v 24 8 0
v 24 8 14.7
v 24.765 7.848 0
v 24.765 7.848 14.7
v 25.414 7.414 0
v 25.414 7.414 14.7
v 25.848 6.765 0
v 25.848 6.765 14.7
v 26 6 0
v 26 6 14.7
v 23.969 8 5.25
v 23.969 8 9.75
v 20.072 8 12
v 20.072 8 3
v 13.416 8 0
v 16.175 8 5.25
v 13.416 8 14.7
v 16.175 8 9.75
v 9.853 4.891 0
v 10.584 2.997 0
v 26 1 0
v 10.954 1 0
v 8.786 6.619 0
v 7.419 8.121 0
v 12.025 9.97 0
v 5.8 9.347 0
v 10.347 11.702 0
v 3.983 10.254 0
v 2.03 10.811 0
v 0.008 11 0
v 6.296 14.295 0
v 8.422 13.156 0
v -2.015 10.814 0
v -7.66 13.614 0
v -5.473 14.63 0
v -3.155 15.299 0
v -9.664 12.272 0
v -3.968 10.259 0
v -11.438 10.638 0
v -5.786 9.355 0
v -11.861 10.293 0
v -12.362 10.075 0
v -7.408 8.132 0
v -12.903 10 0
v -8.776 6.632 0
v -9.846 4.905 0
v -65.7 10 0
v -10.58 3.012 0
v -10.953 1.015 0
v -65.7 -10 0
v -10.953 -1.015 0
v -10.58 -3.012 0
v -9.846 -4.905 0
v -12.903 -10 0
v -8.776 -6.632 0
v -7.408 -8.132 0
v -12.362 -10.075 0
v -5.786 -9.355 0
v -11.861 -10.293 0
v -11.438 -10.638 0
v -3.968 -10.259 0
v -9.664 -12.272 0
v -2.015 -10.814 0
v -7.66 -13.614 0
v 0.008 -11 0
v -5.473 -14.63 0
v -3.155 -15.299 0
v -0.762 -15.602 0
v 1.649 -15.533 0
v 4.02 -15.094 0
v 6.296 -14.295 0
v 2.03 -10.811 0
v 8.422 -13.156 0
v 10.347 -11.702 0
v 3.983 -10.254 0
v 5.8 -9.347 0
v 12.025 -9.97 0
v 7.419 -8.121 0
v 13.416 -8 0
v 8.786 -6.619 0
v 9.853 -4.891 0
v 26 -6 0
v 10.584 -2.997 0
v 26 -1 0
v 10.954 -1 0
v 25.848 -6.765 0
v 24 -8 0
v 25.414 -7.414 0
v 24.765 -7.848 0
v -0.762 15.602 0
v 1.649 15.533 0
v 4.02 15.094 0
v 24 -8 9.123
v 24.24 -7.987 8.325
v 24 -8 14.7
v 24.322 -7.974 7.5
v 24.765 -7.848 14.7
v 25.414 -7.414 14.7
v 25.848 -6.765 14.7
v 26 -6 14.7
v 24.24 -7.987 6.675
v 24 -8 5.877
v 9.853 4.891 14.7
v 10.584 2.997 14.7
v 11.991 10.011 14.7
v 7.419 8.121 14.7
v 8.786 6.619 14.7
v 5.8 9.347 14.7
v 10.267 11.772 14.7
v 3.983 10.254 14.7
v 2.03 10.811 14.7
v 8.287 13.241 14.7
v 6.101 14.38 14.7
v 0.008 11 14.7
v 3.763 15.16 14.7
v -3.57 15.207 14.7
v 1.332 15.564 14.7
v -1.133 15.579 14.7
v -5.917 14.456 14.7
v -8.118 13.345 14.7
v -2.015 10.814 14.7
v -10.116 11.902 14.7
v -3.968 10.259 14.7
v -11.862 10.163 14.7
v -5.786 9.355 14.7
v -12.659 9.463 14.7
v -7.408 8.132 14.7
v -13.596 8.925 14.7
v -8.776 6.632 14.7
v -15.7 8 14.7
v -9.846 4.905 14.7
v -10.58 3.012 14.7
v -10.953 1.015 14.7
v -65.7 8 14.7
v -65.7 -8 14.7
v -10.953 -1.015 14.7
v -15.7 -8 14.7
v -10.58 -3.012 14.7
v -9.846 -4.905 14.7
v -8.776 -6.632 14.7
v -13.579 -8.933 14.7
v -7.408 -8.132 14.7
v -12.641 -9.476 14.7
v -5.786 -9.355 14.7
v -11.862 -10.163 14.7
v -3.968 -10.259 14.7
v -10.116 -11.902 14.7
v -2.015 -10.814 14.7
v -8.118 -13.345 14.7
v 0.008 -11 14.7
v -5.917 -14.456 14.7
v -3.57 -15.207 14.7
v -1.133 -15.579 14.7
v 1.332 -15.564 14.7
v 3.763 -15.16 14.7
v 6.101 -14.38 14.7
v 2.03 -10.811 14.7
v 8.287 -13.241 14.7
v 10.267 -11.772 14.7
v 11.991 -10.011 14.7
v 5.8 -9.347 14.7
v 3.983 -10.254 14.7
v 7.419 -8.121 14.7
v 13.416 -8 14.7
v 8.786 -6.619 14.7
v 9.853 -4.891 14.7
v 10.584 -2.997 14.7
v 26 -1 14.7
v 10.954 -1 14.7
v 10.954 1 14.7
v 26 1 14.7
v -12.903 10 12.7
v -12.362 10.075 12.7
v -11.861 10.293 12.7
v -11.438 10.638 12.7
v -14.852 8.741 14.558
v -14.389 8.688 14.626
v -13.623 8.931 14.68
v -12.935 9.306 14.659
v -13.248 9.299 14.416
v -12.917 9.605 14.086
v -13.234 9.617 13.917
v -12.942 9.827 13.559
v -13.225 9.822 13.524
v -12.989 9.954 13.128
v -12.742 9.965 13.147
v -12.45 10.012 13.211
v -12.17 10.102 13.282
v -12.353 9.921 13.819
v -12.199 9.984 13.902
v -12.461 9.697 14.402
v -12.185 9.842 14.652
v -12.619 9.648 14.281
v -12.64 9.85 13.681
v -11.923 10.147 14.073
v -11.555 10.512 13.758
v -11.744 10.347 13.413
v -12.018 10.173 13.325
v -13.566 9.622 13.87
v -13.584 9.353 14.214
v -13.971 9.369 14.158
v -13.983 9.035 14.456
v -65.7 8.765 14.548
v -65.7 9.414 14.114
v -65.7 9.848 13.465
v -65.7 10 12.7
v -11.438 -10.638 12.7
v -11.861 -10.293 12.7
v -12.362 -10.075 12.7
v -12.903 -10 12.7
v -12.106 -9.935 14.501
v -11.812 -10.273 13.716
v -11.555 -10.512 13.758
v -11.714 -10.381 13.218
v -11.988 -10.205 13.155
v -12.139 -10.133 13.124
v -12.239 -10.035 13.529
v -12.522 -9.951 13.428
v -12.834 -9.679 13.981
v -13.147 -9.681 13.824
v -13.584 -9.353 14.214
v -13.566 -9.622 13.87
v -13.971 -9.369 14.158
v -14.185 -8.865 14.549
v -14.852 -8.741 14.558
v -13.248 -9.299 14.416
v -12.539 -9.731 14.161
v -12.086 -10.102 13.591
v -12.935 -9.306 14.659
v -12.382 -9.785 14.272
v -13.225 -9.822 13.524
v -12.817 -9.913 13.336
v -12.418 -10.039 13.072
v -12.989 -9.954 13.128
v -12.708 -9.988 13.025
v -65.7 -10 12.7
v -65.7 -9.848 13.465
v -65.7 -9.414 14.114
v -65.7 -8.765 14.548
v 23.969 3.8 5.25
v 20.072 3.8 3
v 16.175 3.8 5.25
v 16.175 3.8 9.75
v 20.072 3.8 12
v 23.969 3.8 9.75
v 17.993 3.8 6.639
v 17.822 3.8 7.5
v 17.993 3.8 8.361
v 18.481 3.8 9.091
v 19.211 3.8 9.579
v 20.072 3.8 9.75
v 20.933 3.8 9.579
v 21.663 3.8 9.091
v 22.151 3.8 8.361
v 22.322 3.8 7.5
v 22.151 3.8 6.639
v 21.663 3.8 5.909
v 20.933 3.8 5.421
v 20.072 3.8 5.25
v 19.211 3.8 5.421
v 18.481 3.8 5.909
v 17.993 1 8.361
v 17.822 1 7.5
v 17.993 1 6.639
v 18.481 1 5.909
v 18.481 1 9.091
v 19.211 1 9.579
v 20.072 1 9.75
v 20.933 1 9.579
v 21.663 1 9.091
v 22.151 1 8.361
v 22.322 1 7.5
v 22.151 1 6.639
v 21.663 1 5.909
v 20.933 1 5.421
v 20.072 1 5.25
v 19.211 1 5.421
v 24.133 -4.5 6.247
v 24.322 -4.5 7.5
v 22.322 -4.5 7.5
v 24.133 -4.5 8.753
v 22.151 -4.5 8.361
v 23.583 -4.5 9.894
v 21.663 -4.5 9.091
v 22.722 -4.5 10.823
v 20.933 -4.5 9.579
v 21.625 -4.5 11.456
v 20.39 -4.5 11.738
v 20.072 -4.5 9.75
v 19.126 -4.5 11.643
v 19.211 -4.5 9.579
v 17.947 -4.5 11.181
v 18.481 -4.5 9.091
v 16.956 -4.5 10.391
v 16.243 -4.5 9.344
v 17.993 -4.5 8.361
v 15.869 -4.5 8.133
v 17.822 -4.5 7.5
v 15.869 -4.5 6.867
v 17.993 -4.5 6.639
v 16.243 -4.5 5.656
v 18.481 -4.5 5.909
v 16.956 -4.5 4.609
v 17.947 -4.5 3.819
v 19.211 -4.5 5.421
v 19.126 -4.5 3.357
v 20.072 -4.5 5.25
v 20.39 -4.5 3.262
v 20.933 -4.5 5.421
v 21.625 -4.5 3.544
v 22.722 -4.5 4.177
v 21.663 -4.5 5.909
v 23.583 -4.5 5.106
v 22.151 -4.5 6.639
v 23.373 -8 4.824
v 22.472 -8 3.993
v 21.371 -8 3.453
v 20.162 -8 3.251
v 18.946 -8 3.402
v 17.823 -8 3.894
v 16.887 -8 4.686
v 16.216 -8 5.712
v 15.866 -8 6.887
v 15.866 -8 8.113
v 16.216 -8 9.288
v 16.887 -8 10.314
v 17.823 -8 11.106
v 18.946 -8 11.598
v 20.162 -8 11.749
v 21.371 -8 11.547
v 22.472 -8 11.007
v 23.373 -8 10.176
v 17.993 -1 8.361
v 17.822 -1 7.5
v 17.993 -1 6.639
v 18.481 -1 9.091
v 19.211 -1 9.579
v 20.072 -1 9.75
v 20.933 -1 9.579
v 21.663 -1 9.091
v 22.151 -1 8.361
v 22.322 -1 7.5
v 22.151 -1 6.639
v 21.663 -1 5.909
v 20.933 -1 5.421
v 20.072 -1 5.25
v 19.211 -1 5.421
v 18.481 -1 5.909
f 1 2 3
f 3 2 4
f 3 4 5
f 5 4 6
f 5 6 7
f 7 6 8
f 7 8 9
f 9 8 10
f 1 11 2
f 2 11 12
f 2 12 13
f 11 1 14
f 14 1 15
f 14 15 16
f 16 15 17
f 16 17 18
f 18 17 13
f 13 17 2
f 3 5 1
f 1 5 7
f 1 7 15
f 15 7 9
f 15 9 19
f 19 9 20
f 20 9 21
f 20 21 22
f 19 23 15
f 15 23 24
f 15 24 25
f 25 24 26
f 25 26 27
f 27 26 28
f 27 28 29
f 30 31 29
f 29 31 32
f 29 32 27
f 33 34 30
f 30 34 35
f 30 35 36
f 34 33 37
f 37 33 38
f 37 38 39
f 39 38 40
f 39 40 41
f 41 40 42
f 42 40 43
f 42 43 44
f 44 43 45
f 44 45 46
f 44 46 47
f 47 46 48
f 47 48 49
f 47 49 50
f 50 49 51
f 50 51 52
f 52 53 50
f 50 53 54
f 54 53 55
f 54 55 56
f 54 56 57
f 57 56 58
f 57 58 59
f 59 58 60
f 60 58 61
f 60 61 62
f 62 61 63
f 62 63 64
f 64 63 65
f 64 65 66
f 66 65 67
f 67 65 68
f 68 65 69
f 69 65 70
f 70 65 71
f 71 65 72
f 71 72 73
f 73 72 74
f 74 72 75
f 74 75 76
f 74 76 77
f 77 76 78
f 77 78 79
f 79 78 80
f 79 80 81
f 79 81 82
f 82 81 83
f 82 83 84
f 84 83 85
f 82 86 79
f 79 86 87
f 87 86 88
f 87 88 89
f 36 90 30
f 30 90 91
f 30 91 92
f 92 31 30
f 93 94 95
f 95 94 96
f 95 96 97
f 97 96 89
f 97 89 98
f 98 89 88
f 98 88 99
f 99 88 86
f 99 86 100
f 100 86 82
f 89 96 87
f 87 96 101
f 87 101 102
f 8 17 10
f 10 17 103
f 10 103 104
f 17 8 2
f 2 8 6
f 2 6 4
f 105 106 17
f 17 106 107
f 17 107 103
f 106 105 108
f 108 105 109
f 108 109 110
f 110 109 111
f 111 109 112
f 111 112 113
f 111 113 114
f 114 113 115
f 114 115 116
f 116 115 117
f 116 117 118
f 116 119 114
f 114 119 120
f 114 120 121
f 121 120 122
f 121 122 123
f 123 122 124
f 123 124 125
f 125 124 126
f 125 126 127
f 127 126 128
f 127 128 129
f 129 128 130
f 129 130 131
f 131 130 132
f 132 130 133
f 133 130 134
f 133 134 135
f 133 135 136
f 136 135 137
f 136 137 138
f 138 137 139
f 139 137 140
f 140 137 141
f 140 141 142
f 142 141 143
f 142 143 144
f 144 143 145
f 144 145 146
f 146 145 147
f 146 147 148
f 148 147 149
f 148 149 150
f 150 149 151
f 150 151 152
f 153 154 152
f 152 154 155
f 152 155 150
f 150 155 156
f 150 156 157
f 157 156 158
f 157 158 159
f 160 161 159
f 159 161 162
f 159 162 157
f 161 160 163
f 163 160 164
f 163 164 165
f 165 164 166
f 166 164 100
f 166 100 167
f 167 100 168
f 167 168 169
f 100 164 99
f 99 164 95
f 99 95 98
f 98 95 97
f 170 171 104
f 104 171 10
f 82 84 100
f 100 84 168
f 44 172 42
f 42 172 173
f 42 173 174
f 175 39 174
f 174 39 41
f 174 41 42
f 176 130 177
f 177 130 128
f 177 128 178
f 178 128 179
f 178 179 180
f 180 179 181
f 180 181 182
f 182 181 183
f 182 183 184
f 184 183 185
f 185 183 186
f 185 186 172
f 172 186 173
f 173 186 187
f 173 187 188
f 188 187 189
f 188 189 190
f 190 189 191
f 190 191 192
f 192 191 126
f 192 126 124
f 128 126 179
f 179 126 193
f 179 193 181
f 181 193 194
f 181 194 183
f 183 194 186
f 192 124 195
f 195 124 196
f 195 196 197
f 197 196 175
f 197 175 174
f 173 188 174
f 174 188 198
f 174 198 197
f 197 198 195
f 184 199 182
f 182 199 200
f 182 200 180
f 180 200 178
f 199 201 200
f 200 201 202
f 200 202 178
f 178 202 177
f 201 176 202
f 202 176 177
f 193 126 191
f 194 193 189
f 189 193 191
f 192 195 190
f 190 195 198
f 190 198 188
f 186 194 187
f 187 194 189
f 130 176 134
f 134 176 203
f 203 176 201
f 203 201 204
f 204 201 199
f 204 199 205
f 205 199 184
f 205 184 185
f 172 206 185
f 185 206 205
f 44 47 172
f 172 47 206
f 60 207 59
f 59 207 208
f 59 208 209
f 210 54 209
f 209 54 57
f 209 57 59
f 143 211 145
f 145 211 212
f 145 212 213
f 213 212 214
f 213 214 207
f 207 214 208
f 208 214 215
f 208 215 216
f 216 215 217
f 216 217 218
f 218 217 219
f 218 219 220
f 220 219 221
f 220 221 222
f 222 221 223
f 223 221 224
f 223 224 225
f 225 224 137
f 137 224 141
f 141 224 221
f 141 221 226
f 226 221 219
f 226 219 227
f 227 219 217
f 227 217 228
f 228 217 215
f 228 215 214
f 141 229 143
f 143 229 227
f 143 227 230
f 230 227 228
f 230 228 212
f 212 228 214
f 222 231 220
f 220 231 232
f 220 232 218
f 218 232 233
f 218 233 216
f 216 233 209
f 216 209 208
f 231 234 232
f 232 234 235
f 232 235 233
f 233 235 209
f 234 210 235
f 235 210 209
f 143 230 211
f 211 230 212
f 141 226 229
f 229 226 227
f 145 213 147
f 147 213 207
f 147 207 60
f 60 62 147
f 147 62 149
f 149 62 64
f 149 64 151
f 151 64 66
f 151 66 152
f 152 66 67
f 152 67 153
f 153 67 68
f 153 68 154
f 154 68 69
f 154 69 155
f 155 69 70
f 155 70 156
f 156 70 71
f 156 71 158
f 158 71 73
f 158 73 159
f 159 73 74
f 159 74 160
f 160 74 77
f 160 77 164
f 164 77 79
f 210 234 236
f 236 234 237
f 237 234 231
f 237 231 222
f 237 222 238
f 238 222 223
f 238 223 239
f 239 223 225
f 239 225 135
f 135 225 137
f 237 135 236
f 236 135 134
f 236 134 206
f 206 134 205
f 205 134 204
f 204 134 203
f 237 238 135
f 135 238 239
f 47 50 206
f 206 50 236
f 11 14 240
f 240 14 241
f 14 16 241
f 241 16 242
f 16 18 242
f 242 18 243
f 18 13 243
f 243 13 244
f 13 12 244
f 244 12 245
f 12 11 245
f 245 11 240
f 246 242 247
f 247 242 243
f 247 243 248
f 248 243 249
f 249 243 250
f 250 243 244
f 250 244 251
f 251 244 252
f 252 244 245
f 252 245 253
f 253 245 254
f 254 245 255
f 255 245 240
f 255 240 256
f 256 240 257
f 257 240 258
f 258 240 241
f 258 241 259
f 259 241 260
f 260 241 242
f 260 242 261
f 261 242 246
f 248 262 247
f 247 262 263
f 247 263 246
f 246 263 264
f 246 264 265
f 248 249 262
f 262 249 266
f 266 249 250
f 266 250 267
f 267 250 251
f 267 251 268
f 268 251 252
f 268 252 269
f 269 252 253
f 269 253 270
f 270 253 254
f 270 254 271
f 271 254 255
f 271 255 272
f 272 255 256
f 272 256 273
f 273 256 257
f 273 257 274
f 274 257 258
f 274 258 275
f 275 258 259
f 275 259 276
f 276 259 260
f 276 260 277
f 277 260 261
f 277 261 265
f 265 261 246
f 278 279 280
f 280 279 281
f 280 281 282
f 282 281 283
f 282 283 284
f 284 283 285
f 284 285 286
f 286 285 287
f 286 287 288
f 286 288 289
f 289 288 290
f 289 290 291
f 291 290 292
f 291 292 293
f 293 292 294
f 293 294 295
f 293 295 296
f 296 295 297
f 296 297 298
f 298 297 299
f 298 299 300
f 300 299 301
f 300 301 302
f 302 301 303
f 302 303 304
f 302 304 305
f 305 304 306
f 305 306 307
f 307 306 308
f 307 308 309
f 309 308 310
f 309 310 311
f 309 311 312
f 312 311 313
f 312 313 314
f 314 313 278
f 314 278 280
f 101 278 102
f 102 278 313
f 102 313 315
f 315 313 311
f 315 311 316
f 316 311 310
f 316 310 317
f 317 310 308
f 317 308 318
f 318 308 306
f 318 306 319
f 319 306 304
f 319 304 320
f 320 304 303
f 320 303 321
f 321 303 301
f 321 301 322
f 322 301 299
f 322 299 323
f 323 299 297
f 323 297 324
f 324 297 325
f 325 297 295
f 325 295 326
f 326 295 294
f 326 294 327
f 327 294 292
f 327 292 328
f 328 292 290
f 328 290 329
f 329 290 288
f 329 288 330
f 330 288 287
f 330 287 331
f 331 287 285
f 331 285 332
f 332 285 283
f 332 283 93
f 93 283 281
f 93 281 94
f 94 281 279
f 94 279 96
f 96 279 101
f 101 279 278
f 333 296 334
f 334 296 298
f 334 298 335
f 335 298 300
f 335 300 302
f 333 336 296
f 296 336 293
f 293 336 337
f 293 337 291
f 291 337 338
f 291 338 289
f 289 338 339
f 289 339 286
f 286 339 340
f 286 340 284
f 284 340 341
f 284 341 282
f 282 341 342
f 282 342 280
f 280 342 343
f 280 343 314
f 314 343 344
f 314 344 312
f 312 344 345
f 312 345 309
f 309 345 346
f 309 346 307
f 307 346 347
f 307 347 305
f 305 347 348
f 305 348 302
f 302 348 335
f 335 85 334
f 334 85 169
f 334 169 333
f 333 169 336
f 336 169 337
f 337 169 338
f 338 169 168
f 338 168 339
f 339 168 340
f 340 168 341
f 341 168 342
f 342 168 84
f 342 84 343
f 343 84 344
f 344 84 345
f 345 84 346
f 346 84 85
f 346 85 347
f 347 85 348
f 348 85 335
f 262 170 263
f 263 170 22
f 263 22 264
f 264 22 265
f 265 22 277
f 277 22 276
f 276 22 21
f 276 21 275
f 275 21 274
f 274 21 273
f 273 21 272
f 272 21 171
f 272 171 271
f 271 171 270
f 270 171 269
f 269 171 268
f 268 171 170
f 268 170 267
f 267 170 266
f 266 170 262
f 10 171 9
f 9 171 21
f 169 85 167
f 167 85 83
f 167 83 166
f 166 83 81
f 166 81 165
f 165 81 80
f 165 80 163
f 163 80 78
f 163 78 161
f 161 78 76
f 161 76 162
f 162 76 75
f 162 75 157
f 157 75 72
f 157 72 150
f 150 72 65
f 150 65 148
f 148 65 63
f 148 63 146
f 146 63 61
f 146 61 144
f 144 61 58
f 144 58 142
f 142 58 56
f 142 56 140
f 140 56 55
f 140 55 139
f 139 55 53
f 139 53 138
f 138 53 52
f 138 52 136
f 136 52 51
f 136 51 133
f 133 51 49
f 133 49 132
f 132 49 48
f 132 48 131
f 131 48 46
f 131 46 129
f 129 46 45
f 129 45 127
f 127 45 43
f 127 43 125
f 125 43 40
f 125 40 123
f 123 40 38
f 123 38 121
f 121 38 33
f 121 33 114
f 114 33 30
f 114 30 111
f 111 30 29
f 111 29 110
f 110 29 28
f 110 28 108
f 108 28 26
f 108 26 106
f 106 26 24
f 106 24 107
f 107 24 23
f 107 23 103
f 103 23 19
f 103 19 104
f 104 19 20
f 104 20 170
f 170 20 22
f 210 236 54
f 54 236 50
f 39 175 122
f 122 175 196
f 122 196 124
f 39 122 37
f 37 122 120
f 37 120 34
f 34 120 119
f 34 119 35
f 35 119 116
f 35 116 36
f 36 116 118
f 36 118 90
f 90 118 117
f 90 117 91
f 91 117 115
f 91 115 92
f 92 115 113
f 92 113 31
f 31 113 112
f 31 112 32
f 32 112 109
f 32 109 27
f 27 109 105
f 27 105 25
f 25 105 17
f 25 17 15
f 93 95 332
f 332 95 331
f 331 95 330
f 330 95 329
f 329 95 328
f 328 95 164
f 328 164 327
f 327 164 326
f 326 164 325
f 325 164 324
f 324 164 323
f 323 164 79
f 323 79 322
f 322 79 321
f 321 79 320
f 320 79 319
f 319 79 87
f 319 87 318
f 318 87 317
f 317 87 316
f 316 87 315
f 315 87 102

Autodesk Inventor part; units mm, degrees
ref_plane "YZ Plane" through (0, 0, 0) normal (1, 0, 0) x (0, 1, 0)
ref_plane "XZ Plane" through (0, 0, 0) normal (0, 1, 0) x (-1, 0, 0)
ref_plane "XY Plane" through (0, 0, 0) normal (0, 0, 1) x (1, 0, 0)
sketch "Sketch1" plane through (0, 0, 0) normal (0, 0, 1) x (1, 0, 0)
  circle A0 centre (0, 0) radius 11
  circle A1 centre (0, 0) radius 15.6205
  line L0 (26, 8) -> (11, 8)
  line L1 (11, 8) -> (11, -8)
  line L2 (11, -8) -> (26, -8)
  line L3 (26, -8) -> (26, 8)
  line L4 (-65.7, 10) -> (-12, 10)
  line L5 (-12, 10) -> (-12, -10)
  line L6 (-12, -10) -> (-65.7, -10)
  line L7 (-65.7, -10) -> (-65.7, 10)
  point P0 (13.4164, 8)
  point P1 (13.4164, -8)
  point P2 (-12, -10)
  point P3 (-12, 10)
  point P4 (-12, 0)
  dimension "d0" = 22
  dimension "d1" = 31.241
  dimension "d10" = 15
  dimension "d11" = 16
  dimension "d45" = 53.7
  dimension "d46" = 20
extrude "Extrusion1" add sketch "Sketch1" along normal blind 14.7
sketch "Sketch2" plane through (0, 0, 14.7) normal (0, 0, 1) x (1, 0, 0)
  circle A0 centre (0, 0) radius 11 projected
  line L0 (26, -8) -> (26, 8) projected
  line L1 (26, 0) -> (10.8, 0)
  line L2 (10.8, 0) -> (10.8, 1)
  line L3 (10.8, 1) -> (26, 1)
  line L4 (26, 1) -> (26, 0)
  line L5 (26, 0) -> (10.8, 0)
  line L6 (10.8, 0) -> (10.8, -1)
  line L7 (10.8, -1) -> (26, -1)
  line L8 (26, -1) -> (26, 0)
  point P0 (10.9545, 1)
  point P1 (10.9545, -1)
  dimension "d20" = 15.2
  dimension "d21" = 1
  dimension "d22" = 1
extrude "Extrusion2" cut sketch "Sketch2" against normal blind 15 contours L1 L2 L3 A0 | L1 L0 L7 A0 | A0 L3 L0 L1 | A0 L7 L6 L1
sketch "Sketch3" plane through (13.4164, -8, 0) normal (0, -1, 0) x (1, 0, 0)
  line L0 (0, 0) -> (0, 14.7) projected
  line L1 (0, 0) -> (6.6555, 0)
  line L2 (6.6555, 0) -> (6.6555, 7.5)
  line L3 (6.6555, 7.5) -> (0, 7.5)
  line L4 (0, 7.5) -> (0, 0)
  point P0 (-13.4164, 0)
  dimension "d25" = 6.6555
  dimension "d26" = 7.5
hole "Hole1" at (20.0719, -8, 7.5) direction (0, 1, 0) diameter 4.5 depth 12.5 counterbore diameter 8.5 counterbore depth 3.5
sketch "Sketch4" plane through (13.4164, 8, 0) normal (0, 1, 0) x (1, 0, 0)
  line L0 (12.5836, 0) -> (0, 0) projected
  line L1 (0, 0) -> (6.6555, 0)
  line L2 (6.6555, 0) -> (6.6555, -7.5)
  line L3 (6.6555, -7.5) -> (0, -7.5)
  line L4 (0, -7.5) -> (0, 0)
  line L5 (6.6555, -7.5) -> (6.6555, -12)
  line L6 (6.6555, -7.5) -> (11.1555, -7.5) construction
  line L7 (6.6555, -12) -> (2.7584, -9.75)
  line L8 (2.7584, -9.75) -> (2.7584, -5.25)
  line L9 (2.7584, -5.25) -> (6.6555, -3)
  line L10 (6.6555, -3) -> (10.5526, -5.25)
  line L11 (10.5526, -5.25) -> (10.5526, -9.75)
  line L12 (10.5526, -9.75) -> (6.6555, -12)
  point P0 (-13.4164, 0)
  dimension "d51" = 6.6555
  dimension "d52" = 7.5
  dimension "d53" = 4.5
  dimension "d54" = 90
extrude "Extrusion3" cut sketch "Sketch4" against normal blind 4.2 contours L10 L11 L12 L5 L2 | L2 L3 L8 L9 | L5 L7 L8 L3
fillet "Fillet1" radius 2 2 edges at (-38.85, 10, 14.7) (-38.85, -10, 14.7)
fillet "Fillet2" radius 2 4 edges at (-12, -10, 6.35) (-12.4535, -9.4292, 14.0991) (-12, 10, 6.35) (-12.4535, 9.4292, 14.0991)
fillet "Fillet3" radius 2 2 edges at (26, -8, 7.35) (26, 8, 7.35)
properties part number "Clasp"
